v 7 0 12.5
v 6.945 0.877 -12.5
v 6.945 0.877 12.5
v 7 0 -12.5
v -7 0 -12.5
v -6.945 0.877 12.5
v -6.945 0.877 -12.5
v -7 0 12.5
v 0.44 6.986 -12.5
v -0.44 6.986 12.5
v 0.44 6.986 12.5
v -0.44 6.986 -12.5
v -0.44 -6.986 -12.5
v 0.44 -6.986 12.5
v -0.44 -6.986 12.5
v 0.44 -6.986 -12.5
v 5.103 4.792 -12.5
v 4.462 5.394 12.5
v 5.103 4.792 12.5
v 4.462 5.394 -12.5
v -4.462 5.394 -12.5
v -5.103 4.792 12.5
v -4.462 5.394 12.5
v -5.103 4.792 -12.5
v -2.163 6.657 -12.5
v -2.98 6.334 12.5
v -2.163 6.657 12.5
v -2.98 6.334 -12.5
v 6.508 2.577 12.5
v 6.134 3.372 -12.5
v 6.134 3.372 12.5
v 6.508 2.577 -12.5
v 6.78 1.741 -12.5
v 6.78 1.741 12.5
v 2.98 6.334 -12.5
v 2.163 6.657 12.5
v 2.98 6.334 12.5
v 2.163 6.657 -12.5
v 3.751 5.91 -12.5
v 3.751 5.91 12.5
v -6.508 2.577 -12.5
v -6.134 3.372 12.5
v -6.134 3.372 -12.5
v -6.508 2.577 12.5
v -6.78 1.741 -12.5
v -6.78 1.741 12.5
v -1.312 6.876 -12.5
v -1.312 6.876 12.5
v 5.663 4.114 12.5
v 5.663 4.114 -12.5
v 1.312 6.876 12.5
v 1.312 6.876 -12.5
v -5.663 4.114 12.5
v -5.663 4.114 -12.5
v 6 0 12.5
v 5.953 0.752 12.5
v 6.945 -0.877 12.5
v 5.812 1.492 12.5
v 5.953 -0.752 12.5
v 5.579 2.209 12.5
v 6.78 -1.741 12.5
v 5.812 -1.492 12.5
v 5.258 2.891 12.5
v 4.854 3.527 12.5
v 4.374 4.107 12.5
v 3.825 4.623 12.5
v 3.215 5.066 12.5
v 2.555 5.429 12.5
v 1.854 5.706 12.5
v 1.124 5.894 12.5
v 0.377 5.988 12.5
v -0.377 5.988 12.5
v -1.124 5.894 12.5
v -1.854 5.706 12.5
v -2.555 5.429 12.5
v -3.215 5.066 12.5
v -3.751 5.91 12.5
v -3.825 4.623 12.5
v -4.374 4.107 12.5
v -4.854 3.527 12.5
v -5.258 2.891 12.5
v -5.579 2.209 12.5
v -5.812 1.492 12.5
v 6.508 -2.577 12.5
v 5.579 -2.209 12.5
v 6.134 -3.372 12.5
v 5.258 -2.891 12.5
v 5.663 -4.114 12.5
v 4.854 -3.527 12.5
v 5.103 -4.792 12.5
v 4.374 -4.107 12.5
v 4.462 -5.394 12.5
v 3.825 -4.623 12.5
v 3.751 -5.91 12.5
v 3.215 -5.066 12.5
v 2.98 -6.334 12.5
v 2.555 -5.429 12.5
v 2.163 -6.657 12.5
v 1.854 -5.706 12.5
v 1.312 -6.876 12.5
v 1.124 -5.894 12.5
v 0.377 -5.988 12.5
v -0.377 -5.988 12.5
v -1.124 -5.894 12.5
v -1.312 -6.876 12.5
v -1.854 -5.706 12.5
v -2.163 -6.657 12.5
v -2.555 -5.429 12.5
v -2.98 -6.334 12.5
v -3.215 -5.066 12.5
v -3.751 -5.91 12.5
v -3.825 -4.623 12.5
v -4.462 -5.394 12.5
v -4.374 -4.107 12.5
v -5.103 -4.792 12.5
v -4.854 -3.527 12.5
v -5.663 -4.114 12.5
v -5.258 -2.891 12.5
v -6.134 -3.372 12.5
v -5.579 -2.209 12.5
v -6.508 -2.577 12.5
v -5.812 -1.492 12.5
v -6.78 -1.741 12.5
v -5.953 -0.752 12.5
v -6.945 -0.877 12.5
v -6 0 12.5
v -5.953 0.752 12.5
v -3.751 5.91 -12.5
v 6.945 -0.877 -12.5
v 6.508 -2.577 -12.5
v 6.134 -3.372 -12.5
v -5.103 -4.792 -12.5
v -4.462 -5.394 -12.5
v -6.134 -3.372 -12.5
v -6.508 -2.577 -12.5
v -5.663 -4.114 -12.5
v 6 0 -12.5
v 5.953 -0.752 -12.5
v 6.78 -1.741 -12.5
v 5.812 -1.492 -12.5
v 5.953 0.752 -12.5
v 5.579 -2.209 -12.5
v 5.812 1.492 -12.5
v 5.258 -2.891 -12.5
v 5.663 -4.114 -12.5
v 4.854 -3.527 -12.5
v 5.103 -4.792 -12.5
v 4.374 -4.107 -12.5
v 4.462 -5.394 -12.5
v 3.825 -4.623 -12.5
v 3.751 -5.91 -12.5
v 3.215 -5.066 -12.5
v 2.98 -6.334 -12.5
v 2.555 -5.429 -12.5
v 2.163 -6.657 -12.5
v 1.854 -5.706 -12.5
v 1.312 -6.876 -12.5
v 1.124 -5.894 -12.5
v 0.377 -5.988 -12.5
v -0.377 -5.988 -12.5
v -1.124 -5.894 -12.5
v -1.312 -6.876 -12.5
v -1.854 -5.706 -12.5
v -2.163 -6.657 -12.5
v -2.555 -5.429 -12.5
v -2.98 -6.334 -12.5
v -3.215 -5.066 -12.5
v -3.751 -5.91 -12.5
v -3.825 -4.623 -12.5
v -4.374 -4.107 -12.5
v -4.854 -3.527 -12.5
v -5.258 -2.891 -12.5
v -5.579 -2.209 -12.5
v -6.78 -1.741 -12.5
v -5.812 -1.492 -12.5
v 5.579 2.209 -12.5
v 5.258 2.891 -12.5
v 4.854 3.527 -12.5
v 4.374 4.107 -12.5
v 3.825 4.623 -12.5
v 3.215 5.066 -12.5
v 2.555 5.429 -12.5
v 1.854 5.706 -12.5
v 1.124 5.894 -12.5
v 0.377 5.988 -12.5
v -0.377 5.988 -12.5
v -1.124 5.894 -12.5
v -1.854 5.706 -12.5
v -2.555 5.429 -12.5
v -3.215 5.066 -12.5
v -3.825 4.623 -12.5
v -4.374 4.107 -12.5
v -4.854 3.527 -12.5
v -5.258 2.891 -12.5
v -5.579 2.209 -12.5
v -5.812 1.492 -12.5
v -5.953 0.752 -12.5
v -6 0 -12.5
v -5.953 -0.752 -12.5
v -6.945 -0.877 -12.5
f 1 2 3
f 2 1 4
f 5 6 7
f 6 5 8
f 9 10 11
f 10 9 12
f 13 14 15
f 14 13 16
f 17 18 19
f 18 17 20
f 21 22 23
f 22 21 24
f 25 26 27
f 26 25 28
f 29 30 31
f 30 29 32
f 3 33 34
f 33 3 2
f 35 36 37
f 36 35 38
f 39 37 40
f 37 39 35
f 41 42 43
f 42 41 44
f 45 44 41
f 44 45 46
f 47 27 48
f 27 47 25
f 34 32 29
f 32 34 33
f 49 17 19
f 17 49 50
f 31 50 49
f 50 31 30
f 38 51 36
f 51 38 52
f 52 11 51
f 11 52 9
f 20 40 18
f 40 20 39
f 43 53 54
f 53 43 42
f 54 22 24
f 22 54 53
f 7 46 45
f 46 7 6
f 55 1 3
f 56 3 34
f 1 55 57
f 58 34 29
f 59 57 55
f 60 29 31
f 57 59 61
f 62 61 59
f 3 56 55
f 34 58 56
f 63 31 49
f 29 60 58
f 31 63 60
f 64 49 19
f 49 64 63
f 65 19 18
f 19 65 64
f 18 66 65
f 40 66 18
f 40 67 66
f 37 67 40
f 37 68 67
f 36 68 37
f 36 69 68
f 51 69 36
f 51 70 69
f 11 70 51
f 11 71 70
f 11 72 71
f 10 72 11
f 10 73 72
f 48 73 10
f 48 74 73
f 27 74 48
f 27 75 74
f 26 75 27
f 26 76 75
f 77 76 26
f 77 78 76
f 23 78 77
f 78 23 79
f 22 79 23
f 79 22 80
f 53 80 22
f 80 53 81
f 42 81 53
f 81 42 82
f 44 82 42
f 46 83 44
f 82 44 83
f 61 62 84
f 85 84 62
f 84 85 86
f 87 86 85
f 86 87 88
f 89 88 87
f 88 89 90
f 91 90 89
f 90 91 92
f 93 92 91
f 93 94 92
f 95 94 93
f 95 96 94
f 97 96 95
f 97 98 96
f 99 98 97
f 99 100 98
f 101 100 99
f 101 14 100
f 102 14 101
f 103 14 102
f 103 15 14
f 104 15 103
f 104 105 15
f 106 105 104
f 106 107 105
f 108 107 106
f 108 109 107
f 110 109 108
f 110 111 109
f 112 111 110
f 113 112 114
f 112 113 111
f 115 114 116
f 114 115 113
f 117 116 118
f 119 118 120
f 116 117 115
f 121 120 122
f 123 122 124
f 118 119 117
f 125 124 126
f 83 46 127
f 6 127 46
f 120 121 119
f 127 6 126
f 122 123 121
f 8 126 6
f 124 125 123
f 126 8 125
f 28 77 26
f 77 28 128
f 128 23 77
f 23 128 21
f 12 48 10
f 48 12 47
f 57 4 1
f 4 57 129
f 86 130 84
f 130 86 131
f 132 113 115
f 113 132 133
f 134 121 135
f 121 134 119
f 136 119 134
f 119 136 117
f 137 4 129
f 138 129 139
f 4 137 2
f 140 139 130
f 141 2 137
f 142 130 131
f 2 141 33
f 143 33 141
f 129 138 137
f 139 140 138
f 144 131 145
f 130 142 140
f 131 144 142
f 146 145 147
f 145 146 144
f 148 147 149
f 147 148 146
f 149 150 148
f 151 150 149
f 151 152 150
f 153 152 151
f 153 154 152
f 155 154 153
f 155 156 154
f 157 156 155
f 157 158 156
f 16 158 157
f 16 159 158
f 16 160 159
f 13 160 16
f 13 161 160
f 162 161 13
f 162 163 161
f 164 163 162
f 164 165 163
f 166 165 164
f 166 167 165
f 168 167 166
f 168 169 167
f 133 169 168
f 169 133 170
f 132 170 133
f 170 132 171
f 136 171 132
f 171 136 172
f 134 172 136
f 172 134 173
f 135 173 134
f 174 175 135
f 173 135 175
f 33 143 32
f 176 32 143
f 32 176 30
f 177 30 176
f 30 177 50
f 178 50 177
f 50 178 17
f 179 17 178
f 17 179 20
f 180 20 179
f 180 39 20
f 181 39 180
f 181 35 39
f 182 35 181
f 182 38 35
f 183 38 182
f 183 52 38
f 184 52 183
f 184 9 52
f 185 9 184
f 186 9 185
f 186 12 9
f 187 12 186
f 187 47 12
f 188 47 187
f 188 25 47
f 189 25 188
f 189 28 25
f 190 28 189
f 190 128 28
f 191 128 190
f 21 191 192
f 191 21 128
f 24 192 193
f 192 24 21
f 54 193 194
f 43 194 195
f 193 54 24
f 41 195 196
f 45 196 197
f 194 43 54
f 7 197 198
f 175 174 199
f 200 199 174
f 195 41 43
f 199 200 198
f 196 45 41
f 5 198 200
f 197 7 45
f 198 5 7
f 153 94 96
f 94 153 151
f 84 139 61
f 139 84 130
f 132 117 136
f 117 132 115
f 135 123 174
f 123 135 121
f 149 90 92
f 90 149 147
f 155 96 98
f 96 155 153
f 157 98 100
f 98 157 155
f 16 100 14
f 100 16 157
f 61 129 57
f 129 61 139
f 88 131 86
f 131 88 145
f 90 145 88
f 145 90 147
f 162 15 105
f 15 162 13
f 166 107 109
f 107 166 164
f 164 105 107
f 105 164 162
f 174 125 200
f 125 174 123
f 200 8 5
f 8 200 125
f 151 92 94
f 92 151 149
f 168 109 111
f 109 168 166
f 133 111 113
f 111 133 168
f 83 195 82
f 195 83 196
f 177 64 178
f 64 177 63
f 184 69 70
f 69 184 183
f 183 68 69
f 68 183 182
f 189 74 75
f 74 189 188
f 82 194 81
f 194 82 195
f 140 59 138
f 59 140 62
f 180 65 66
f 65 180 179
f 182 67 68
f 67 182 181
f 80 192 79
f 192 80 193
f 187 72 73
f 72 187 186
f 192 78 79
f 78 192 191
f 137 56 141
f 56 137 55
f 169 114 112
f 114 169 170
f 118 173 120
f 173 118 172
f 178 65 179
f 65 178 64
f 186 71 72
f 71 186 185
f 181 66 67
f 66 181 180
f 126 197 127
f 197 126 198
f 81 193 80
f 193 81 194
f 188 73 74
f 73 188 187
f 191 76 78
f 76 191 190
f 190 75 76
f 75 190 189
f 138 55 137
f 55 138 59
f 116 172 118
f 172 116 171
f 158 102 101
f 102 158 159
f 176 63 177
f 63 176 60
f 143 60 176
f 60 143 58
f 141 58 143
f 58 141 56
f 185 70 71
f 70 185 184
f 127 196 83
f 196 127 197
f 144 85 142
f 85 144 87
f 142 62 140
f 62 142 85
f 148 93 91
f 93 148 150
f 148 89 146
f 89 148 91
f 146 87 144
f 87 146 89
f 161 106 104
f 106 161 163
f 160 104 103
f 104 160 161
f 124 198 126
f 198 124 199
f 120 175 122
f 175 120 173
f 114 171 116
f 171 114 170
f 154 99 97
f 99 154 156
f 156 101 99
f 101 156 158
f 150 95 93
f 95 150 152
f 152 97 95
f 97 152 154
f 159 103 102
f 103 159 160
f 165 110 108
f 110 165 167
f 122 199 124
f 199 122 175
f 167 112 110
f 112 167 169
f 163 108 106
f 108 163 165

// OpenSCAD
$fn = 50;


difference() {
	union() {
		translate(v = [0, 0, -12.5000000000]) {
			cylinder(h = 25, r = 7.0000000000);
		}
	}
	union() {
		translate(v = [0, 0, -100.0000000000]) {
			cylinder(h = 200, r = 6);
		}
	}
}
